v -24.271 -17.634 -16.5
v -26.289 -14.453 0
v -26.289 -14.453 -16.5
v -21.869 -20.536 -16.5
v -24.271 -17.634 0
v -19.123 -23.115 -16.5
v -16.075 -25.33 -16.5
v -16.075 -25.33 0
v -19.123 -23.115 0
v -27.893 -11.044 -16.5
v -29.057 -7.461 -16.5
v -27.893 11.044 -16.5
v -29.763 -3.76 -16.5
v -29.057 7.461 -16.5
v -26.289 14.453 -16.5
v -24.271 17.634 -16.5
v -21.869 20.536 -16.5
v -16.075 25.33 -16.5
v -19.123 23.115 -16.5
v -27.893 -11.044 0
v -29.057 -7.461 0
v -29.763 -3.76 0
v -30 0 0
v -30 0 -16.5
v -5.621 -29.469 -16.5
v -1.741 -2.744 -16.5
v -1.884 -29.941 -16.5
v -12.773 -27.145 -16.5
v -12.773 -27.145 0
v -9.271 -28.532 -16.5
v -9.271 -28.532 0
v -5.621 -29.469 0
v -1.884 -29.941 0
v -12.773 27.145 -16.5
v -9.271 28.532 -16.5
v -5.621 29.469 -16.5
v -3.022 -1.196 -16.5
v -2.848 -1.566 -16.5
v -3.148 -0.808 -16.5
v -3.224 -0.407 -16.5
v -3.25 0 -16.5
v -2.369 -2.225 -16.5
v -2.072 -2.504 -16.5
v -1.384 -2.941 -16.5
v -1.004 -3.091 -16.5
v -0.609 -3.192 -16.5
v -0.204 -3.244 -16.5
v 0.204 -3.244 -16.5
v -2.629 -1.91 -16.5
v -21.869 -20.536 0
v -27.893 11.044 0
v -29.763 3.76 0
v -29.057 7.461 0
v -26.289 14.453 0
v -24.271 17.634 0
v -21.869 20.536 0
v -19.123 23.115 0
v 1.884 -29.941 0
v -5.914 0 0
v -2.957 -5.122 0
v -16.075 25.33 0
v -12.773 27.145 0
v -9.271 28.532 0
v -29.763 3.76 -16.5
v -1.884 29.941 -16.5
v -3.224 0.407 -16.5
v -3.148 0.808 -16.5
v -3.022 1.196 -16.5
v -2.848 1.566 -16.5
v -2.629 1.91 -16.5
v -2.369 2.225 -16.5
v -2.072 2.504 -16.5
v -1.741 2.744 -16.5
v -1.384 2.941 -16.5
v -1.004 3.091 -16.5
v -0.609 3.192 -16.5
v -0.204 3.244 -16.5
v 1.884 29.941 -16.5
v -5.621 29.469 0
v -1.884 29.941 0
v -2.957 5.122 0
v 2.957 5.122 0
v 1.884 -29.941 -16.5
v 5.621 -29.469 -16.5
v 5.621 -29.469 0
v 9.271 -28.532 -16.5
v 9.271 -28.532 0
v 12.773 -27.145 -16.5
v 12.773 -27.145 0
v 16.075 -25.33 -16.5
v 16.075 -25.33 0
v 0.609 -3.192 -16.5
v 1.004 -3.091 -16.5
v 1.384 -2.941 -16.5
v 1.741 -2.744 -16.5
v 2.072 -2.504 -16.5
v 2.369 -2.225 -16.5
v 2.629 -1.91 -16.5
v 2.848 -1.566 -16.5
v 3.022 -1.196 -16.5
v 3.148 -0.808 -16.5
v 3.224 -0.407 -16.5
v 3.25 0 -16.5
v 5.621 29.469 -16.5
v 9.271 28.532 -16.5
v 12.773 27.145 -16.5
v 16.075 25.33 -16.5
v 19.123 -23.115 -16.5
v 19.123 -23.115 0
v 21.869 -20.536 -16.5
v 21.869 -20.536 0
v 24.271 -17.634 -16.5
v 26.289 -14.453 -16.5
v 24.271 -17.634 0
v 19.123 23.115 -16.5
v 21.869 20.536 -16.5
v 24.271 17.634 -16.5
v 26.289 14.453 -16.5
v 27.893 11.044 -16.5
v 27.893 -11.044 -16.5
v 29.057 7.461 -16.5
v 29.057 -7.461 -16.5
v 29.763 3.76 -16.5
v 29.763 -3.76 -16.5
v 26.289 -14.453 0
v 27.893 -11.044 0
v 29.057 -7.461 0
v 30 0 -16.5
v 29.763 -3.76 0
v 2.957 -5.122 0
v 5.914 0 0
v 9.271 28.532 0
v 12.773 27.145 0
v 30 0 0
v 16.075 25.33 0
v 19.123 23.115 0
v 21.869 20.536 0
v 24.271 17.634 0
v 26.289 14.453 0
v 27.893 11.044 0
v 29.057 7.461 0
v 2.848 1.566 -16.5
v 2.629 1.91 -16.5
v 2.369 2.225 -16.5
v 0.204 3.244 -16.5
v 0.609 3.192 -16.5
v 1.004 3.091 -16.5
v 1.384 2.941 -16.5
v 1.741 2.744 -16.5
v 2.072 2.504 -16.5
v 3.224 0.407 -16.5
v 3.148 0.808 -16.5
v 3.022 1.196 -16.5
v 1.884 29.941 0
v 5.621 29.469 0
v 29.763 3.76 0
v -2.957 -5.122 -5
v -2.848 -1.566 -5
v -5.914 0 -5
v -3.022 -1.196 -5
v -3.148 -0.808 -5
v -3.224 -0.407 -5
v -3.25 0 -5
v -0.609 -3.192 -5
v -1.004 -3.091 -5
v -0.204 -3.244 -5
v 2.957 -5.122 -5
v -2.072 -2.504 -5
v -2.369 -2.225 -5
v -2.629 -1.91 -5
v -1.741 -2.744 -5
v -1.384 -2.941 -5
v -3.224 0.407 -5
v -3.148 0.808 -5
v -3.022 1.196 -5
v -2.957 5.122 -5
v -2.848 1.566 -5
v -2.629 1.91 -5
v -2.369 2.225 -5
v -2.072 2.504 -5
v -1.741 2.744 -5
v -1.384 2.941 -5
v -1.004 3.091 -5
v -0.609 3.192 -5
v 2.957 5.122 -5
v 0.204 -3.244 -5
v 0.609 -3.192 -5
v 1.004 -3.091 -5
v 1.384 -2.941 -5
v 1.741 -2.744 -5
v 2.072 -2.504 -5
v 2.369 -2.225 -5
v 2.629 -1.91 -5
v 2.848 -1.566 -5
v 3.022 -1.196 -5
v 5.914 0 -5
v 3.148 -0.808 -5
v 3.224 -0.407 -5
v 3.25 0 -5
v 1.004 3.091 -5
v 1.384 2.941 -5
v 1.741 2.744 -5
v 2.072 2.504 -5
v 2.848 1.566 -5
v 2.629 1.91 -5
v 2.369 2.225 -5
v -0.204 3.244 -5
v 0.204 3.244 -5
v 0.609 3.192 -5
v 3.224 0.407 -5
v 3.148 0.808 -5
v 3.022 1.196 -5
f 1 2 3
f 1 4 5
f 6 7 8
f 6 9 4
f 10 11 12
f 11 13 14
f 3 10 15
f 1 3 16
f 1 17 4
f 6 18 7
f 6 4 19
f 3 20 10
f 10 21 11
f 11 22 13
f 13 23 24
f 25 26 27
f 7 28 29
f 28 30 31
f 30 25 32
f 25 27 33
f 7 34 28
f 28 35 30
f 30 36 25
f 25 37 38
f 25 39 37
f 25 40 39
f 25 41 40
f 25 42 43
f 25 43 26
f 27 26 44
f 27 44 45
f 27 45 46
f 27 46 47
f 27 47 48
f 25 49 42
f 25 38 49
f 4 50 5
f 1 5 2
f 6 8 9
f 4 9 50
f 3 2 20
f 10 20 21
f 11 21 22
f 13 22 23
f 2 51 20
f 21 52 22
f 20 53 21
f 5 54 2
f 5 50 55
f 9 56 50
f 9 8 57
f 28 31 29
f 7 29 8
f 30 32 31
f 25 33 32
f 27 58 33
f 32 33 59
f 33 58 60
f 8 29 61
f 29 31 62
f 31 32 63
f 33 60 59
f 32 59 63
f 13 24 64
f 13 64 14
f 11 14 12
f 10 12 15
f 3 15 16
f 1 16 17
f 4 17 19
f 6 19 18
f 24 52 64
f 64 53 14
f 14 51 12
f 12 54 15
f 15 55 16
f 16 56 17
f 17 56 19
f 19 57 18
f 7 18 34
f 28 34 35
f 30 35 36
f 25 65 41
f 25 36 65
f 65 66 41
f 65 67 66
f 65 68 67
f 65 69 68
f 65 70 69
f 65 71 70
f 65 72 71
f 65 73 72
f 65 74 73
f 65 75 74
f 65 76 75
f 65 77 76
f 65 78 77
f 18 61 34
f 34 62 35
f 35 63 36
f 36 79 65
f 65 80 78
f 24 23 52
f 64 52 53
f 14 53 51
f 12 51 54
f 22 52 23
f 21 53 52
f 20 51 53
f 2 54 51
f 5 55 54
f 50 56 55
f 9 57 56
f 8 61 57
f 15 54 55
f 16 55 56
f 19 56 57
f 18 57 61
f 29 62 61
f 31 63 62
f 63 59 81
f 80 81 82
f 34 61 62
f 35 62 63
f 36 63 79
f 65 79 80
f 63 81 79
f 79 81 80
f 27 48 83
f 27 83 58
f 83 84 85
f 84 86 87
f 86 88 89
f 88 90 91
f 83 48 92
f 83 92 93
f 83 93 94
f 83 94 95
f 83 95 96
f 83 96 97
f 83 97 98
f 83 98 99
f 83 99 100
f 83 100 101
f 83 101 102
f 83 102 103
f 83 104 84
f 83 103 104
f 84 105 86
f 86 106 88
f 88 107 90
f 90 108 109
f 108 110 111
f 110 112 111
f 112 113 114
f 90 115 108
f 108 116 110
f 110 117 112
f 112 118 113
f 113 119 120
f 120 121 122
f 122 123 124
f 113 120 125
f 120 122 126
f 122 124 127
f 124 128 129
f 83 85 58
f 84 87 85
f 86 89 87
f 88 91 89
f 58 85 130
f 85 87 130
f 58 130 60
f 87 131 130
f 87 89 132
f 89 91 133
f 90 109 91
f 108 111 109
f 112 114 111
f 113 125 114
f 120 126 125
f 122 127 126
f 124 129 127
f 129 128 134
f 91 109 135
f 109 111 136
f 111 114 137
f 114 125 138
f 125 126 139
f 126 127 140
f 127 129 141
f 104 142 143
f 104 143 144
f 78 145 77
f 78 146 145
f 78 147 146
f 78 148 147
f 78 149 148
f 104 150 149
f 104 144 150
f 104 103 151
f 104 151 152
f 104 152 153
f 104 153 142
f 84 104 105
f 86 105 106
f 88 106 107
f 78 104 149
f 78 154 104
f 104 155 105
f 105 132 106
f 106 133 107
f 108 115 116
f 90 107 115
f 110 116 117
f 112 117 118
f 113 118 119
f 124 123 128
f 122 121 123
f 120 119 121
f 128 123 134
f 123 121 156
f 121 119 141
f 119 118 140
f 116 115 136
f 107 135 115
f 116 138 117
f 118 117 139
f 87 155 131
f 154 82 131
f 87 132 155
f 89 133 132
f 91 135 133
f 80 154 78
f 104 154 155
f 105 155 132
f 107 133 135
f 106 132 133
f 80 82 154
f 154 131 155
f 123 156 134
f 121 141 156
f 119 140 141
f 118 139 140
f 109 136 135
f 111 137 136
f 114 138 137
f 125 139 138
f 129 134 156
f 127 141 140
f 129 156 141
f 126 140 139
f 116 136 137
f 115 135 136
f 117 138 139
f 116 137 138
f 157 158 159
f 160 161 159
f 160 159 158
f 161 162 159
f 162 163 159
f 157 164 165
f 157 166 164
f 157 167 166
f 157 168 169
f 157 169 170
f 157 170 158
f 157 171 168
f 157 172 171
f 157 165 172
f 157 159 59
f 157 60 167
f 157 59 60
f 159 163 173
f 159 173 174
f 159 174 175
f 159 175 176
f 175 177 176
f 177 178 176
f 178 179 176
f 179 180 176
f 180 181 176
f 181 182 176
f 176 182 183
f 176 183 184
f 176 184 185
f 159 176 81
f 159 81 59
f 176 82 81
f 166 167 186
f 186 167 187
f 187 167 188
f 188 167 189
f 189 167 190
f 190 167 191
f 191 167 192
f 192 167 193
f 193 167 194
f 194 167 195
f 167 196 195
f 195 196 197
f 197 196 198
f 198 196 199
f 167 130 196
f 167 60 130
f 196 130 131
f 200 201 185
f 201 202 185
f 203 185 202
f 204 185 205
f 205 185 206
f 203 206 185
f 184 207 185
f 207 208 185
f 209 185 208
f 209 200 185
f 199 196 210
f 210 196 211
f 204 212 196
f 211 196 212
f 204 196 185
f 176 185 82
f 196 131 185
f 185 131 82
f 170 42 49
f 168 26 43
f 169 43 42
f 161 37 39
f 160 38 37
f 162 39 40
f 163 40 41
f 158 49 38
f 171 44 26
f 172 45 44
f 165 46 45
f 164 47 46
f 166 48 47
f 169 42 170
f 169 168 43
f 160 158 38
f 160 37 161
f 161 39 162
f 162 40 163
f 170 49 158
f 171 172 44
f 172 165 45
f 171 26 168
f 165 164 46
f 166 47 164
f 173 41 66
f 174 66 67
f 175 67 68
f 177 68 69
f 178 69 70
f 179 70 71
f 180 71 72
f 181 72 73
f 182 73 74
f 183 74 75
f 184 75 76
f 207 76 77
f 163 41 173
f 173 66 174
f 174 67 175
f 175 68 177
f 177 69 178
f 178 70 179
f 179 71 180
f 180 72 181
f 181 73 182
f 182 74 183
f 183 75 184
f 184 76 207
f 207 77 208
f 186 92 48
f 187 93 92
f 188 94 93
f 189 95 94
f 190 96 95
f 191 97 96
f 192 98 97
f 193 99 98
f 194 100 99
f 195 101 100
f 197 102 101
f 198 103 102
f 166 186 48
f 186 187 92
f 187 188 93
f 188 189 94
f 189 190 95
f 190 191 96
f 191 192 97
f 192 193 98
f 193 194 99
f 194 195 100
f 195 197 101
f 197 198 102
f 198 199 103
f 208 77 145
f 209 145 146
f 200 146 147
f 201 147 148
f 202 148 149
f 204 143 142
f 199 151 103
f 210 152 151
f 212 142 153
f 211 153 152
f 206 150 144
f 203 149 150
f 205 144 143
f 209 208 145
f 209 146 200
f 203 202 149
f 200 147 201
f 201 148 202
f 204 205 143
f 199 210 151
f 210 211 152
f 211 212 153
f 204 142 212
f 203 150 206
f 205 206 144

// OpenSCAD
$fn = 50;

difference() {
	union() {
		translate(v = [0, 0, -16.5]) {
			cylinder(h = 16.5, r = 30.0);
		}
		#translate(v = [0, 0, -18.0]) {
			cylinder(h = 18, r = 2.875);
		}
	}
	union() {
		translate(v = [0, 0, 0]) {
			rotate(a = [0, 0, 0]) {
				difference() {
					union() {
						translate(v = [0, 0, -5]) {
							linear_extrude(height = 5) {
								polygon(points = [[5.914249999999999, 0.0], [2.957125, 5.1218907443321156], [-2.9571249999999982, 5.1218907443321156], [-5.914249999999999, 7.242867331857232e-16], [-2.9571250000000022, -5.121890744332115], [2.9571249999999956, -5.121890744332118]]);
							}
						}
					}
					union();
				}
			}
		}
		#translate(v = [0, 0, -100.0]) {
			cylinder(h = 200, r = 3.25);
		}
	}
}
